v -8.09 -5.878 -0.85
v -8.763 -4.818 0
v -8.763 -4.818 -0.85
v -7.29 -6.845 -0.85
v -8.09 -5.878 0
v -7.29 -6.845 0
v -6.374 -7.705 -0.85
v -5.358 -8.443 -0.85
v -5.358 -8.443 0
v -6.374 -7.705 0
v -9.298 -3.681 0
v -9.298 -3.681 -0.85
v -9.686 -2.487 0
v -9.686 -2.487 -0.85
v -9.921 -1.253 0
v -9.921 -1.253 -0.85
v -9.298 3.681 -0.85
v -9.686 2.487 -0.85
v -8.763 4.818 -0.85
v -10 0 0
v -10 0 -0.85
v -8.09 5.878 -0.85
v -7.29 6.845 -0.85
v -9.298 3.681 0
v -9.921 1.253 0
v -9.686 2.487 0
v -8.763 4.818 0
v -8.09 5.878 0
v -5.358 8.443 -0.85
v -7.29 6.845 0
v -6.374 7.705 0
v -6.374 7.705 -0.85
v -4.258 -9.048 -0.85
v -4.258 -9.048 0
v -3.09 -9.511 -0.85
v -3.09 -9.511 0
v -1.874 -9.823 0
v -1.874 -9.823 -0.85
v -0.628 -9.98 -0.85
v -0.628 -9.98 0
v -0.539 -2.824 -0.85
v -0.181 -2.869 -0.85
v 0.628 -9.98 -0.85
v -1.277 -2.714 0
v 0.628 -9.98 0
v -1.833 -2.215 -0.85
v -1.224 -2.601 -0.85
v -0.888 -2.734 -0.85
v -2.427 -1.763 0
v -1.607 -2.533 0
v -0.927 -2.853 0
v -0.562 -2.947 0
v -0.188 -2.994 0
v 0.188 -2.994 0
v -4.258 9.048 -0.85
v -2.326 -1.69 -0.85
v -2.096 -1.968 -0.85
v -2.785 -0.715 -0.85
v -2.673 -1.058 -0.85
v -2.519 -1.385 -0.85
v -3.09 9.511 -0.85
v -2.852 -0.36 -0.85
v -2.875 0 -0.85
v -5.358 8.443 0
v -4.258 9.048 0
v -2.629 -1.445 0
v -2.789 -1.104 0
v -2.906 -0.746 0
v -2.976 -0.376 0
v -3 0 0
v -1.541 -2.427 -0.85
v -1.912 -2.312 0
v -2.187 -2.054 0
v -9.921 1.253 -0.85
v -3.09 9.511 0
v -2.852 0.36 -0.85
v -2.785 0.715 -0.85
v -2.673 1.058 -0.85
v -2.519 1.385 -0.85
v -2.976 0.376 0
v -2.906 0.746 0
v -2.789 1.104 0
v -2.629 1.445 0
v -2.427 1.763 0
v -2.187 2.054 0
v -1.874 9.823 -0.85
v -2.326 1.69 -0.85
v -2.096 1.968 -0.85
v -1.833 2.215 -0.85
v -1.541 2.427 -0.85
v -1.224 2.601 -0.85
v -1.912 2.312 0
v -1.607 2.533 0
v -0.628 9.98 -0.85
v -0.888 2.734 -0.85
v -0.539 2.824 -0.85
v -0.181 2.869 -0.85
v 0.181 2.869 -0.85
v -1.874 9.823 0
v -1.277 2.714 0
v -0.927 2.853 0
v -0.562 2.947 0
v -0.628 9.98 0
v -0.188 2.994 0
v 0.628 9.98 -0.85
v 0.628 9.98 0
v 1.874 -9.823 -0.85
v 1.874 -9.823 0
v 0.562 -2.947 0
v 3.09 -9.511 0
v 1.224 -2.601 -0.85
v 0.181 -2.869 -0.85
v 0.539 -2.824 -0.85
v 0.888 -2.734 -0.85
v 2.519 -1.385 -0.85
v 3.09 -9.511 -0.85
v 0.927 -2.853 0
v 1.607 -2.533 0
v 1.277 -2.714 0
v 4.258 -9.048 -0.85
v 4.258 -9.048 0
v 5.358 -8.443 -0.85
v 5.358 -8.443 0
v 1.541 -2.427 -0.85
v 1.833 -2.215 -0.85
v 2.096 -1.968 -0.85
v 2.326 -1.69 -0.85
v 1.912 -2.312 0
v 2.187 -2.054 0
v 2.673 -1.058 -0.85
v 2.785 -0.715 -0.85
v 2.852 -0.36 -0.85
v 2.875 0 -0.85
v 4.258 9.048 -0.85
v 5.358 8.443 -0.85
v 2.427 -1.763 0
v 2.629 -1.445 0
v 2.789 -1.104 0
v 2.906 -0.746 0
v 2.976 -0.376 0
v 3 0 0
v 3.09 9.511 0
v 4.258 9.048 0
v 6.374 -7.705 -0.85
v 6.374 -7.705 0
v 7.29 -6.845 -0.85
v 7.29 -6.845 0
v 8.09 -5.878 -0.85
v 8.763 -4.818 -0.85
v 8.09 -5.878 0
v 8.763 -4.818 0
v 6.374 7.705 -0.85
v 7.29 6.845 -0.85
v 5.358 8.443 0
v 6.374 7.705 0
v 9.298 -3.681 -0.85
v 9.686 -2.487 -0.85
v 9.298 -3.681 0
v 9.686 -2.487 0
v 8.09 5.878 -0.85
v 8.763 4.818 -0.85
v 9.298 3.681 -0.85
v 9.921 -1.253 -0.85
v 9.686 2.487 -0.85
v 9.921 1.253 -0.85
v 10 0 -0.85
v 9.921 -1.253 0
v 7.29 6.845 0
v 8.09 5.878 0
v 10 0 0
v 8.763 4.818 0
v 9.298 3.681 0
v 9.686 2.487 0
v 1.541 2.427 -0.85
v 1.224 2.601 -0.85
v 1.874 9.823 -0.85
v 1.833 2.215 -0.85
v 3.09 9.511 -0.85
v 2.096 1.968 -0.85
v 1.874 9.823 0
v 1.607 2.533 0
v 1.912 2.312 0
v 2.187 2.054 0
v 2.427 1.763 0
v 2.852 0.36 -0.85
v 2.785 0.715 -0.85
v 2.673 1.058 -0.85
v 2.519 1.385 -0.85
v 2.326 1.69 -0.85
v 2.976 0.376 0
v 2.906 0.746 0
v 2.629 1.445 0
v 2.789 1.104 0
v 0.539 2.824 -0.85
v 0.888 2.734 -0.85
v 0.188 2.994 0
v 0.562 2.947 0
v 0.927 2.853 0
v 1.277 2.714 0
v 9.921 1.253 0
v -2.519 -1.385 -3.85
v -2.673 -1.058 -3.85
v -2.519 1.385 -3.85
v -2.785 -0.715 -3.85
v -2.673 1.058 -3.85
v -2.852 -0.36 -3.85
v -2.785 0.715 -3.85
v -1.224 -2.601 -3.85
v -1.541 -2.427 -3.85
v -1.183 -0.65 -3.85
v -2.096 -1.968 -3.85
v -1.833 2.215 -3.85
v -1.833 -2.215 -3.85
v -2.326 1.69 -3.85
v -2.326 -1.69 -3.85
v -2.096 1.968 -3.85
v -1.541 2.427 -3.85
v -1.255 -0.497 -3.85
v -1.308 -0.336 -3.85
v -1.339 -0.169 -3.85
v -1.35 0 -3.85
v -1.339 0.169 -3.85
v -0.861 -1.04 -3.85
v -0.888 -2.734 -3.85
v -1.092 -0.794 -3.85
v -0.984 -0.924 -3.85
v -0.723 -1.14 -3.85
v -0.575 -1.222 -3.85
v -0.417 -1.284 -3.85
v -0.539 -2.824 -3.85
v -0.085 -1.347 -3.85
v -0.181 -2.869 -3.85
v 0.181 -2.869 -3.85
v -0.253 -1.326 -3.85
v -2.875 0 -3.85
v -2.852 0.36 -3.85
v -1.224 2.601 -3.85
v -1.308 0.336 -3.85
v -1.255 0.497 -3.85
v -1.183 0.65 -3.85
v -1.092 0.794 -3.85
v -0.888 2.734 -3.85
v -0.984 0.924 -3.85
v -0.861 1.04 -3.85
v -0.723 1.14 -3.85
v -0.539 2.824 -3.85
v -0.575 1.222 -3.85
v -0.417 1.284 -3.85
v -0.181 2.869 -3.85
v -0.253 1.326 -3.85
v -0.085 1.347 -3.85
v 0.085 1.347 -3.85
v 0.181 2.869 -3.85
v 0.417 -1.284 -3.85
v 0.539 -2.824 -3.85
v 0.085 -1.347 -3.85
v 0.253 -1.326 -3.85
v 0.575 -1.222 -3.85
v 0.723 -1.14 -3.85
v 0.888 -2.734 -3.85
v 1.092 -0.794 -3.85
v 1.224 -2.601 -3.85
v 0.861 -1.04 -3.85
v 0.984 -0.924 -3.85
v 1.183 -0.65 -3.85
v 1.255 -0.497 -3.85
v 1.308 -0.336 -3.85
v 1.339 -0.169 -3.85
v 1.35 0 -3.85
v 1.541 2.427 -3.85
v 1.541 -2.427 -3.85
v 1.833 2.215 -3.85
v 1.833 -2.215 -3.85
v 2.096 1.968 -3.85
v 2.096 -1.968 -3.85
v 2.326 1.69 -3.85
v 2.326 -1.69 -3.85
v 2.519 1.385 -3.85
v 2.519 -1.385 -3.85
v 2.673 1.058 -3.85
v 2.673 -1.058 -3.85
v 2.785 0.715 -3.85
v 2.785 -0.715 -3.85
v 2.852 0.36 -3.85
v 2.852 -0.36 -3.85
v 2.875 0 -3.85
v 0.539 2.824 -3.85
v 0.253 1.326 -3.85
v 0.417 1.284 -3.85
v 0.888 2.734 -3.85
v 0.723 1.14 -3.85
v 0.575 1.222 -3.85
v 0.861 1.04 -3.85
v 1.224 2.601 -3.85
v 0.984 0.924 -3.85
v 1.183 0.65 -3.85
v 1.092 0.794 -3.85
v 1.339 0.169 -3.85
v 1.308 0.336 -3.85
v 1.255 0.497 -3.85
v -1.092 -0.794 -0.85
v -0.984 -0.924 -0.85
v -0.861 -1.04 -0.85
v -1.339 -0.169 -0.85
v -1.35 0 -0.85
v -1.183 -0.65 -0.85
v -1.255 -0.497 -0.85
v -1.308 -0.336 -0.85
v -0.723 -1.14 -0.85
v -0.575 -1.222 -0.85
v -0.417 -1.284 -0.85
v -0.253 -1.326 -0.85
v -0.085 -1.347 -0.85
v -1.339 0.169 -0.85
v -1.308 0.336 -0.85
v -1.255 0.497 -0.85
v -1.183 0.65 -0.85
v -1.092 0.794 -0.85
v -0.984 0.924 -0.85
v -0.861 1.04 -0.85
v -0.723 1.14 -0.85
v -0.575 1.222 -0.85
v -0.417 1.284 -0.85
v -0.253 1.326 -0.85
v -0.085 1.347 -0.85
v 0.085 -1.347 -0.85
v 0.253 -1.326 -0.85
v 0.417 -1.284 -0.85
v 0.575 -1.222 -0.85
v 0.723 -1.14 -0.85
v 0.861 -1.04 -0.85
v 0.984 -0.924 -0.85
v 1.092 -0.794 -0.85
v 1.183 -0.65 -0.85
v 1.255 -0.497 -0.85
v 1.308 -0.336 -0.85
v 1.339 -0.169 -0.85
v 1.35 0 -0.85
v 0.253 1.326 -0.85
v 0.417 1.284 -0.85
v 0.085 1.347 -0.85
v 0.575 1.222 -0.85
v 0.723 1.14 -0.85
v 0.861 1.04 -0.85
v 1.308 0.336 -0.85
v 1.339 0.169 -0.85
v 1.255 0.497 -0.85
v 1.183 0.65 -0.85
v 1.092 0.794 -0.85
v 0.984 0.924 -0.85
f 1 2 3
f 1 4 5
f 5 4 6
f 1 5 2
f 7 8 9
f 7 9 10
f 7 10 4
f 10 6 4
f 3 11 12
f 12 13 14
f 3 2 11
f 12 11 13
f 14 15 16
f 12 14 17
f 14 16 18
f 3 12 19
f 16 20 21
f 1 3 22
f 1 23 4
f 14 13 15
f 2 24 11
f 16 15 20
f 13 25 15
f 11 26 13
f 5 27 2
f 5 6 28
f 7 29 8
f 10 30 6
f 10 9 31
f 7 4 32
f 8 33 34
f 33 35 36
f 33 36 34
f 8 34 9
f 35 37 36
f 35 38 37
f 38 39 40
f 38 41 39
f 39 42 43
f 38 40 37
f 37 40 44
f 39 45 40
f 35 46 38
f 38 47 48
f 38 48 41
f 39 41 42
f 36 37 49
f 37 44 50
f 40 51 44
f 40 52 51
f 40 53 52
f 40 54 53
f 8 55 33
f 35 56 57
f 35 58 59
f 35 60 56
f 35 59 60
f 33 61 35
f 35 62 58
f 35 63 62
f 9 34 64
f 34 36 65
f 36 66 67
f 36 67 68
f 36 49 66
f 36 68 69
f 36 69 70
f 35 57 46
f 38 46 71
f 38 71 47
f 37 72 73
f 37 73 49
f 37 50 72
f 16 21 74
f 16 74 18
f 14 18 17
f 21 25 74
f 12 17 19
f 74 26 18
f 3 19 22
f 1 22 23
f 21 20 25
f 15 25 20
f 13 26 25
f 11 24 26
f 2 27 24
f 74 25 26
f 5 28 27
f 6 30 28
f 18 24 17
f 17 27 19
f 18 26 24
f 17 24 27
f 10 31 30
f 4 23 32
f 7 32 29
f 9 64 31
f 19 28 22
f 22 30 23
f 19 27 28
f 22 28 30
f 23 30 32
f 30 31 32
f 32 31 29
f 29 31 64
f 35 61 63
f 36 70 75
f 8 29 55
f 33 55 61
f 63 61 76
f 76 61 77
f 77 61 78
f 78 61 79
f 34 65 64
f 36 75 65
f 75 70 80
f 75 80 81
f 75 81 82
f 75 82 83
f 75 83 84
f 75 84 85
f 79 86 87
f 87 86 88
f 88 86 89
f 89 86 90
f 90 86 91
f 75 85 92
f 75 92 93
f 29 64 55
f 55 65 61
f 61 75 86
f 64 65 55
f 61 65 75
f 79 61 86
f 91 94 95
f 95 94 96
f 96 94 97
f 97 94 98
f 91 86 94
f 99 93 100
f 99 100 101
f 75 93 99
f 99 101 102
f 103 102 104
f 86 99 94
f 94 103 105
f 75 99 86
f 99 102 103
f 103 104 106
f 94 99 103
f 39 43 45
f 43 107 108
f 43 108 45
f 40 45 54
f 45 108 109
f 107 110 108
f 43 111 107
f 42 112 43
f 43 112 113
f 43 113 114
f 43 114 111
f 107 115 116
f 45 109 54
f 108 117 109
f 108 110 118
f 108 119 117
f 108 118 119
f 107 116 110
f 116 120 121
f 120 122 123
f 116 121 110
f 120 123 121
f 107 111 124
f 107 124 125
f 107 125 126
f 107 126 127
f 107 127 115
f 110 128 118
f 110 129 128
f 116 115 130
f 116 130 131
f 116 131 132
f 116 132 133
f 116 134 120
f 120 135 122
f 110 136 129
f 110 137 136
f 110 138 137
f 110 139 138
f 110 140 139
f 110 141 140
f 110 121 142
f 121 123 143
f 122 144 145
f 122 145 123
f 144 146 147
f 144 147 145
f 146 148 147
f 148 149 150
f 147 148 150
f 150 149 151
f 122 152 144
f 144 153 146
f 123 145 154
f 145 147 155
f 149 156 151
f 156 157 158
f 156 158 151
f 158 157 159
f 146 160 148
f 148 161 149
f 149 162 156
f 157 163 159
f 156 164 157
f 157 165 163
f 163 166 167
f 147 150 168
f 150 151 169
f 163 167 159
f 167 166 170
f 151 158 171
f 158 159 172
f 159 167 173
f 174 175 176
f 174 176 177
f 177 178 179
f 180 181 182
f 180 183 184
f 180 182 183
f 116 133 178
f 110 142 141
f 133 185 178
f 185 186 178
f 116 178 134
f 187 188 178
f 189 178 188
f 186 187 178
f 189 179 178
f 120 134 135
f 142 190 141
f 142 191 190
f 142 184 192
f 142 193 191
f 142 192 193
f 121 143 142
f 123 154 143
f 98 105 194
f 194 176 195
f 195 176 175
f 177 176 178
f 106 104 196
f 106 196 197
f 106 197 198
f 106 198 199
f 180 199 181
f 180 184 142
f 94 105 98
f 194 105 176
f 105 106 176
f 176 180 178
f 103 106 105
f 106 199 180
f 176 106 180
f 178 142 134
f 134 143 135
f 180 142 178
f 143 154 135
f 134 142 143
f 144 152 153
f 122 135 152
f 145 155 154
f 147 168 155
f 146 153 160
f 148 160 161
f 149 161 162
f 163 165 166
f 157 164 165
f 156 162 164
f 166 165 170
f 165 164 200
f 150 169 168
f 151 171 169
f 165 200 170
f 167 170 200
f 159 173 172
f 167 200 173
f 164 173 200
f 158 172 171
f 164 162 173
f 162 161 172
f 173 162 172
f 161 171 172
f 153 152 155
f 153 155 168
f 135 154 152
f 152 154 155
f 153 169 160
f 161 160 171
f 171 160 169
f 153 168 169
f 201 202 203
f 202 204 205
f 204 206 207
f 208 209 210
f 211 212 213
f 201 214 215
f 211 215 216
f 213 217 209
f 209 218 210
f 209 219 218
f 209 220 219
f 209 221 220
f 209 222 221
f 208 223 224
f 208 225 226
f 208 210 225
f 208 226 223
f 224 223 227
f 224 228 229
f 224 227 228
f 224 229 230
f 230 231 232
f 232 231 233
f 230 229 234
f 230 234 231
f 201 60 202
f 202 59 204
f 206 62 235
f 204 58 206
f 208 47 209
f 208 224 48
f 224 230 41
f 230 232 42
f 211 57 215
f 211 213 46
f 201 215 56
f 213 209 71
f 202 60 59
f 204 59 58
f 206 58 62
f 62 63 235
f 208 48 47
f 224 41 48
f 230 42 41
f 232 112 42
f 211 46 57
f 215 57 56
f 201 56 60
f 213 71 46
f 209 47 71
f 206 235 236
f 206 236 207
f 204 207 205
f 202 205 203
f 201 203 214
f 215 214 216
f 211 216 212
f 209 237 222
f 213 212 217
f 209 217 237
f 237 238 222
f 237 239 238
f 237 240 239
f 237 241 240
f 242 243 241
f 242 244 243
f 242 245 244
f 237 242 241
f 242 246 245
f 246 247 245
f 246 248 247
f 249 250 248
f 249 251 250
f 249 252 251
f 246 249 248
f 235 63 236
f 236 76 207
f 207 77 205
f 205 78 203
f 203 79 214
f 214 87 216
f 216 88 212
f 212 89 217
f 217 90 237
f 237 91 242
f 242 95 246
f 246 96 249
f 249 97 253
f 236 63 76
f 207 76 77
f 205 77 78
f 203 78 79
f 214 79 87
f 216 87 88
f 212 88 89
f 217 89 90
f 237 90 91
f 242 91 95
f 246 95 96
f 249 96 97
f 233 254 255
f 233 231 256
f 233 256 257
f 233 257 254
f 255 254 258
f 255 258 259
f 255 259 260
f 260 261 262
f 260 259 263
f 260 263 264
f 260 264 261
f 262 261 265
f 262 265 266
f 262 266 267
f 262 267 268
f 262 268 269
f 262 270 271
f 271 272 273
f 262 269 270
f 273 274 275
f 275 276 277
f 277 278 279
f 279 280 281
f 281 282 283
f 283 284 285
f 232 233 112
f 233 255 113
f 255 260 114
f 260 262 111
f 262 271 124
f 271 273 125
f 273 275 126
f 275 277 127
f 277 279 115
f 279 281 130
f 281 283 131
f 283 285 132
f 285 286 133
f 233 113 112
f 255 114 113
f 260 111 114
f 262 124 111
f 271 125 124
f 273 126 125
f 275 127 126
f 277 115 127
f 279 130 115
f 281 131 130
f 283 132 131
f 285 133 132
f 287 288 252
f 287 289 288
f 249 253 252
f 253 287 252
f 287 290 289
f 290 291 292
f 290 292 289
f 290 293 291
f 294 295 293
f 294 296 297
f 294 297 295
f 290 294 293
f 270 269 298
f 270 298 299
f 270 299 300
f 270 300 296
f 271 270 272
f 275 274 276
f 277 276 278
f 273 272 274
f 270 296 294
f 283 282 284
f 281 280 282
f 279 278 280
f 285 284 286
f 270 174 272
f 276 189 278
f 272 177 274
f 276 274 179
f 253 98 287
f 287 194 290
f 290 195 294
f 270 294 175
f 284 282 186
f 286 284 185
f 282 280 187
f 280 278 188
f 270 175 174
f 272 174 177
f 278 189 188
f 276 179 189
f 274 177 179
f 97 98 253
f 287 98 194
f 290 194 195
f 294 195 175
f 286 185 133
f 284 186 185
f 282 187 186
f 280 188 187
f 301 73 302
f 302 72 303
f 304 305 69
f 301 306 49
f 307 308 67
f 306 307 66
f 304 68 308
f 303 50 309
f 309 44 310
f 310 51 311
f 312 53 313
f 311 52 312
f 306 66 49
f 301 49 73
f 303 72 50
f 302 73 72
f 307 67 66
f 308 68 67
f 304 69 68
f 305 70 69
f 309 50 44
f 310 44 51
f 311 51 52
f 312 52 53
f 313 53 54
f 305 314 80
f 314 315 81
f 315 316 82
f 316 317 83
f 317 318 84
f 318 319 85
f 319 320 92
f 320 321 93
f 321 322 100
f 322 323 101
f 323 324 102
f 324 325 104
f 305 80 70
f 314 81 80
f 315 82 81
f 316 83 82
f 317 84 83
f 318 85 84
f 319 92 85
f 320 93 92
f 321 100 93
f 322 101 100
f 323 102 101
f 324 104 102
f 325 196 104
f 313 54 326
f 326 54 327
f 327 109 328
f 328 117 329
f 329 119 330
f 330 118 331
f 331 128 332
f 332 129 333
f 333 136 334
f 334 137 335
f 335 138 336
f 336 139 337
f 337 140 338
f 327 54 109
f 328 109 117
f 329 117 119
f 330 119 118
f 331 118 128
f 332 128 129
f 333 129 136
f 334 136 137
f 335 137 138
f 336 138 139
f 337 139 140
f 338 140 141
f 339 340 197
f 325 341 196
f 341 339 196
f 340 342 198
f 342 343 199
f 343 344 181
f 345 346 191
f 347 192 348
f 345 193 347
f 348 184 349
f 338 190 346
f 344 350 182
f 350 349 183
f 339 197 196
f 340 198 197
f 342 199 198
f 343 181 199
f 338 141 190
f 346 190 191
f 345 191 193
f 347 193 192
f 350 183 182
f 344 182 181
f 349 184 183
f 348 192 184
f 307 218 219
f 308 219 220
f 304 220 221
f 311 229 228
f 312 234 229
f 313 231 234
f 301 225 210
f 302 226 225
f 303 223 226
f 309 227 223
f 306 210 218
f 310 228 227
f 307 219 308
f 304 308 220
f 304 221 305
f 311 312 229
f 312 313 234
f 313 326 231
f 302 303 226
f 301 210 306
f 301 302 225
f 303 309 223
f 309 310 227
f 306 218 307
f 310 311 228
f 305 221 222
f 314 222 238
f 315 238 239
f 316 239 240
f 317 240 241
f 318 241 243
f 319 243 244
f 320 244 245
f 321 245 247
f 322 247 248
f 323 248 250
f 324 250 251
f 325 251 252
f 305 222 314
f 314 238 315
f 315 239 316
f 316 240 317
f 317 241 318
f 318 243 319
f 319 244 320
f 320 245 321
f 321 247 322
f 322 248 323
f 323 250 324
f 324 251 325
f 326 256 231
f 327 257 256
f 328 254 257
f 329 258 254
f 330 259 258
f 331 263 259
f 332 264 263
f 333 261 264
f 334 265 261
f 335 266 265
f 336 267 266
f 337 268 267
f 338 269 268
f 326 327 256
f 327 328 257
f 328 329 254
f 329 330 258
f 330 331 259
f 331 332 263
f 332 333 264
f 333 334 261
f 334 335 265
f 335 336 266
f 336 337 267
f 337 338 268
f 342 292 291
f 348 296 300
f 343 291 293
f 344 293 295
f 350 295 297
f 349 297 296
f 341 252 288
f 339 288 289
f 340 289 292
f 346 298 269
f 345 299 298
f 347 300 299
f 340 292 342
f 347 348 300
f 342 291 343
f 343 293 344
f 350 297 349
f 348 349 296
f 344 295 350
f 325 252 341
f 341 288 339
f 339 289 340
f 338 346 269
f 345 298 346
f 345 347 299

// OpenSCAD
$fn = 50;

difference() {
	union() {
		translate(v = [0, 0, -0.85]) {
			cylinder(h = 0.85, r = 10.0);
		}
		#translate(v = [0, 0, -3.85]) {
			cylinder(h = 3.85, r = 2.875);
		}
	}
	union() {
		translate(v = [0, 0, 0]) {
			rotate(a = [0, 0, 0]) {
				difference() {
					union() {
						translate(v = [0, 0, -3.85]) {
							cylinder(h = 3.85, r = 1.0);
						}
						translate(v = [0, 0, -0.85]) {
							cylinder(h = 0.85, r1 = 1.35, r2 = 3.0);
						}
						translate(v = [0, 0, -3.85]) {
							cylinder(h = 3.85, r = 1.35);
						}
						translate(v = [0, 0, -3.85]) {
							cylinder(h = 3.85, r = 1.0);
						}
					}
					union();
				}
			}
		}
	}
}
